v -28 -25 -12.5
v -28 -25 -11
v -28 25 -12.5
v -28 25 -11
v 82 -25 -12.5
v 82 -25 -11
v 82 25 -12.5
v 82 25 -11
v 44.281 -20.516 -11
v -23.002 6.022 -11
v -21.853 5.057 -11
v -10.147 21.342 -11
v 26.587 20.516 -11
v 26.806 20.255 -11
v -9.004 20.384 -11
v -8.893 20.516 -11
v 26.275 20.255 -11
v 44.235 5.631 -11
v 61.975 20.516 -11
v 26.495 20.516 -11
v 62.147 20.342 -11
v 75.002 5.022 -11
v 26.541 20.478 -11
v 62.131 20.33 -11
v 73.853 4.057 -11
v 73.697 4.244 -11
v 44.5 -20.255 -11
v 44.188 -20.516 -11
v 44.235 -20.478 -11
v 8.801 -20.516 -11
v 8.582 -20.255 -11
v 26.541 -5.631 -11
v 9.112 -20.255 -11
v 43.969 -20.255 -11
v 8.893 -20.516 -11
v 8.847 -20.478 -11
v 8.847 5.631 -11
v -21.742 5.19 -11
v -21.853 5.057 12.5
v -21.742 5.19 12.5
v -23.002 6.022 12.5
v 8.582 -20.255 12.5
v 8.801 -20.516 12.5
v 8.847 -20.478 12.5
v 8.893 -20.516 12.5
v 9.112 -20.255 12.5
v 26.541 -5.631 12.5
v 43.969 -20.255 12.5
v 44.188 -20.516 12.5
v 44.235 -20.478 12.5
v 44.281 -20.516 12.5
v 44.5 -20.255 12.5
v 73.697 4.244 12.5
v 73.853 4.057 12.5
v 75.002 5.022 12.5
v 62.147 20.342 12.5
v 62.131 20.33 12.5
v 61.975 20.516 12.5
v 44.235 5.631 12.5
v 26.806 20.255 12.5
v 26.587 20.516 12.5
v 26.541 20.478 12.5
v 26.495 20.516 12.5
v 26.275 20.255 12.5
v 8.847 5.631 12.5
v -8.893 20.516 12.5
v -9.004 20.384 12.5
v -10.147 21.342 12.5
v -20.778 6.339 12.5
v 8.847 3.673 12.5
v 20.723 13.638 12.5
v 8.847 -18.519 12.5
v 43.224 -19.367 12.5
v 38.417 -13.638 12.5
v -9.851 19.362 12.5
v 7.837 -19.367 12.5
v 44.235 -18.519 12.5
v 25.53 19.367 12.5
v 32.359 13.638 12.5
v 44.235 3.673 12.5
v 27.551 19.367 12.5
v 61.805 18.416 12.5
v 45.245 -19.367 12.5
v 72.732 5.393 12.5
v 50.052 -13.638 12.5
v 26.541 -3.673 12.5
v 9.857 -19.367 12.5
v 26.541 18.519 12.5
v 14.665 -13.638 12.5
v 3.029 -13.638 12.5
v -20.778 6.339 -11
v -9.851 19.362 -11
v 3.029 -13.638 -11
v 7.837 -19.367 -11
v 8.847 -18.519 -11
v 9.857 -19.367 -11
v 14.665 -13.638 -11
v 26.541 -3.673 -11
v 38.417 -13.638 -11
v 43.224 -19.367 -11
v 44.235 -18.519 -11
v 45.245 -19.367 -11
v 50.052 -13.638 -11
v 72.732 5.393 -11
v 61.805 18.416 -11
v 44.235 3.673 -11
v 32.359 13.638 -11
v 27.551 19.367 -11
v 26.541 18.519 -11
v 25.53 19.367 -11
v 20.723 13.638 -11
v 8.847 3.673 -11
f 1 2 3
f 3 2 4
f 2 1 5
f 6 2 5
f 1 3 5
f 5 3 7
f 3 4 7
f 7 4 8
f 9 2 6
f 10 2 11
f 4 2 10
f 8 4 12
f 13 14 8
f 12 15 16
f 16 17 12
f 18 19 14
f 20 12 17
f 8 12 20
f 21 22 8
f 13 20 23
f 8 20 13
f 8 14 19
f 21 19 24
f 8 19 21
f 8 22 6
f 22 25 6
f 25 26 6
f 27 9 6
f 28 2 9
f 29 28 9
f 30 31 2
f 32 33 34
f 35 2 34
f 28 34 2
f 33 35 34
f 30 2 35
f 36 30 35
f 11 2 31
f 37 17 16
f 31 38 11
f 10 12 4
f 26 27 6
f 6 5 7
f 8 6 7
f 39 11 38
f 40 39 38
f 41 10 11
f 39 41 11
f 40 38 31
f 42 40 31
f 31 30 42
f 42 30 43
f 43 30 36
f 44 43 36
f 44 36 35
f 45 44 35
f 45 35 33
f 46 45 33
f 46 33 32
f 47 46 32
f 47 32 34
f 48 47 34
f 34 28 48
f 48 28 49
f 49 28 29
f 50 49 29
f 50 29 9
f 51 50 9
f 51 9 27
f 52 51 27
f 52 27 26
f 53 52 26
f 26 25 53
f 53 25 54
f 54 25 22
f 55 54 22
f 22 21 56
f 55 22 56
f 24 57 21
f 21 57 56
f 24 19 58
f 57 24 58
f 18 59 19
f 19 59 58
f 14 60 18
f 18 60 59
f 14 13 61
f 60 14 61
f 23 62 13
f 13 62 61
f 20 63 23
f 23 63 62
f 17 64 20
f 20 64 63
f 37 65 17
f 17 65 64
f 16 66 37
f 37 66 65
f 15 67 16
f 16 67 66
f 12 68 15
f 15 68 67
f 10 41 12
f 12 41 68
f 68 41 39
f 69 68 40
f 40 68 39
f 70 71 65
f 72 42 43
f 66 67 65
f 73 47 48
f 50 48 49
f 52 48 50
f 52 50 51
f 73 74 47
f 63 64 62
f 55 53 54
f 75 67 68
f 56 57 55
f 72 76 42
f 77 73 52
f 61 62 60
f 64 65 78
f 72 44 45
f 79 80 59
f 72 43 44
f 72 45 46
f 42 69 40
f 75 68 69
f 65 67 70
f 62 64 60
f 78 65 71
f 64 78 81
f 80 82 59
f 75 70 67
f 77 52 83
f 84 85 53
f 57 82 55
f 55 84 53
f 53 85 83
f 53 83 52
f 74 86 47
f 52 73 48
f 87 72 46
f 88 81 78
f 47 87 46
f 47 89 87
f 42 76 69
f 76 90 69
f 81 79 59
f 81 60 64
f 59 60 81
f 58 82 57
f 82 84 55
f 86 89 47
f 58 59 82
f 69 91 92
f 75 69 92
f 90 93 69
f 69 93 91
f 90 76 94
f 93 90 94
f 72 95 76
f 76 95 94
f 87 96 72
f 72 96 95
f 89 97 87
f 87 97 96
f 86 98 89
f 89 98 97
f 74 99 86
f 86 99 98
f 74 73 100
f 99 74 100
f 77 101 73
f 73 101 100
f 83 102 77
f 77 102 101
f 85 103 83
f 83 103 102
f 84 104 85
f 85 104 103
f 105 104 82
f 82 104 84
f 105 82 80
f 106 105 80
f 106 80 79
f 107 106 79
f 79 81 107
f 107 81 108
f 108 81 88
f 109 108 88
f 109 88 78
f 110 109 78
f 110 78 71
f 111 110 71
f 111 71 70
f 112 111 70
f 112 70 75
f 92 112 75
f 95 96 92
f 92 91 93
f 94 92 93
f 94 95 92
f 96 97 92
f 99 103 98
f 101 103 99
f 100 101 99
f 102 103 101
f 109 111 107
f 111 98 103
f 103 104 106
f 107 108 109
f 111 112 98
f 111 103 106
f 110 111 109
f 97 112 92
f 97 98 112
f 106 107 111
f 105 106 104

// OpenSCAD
inner_width = 17;
wall_thickness = 1.5;
segment_length = 40;
segments =4;
cutter_height = 25;
angle = 140;

fudge = 0.1*1;

module chevron(width, height, length)
{
	angled_length = sin(angle/2)*length;
	adj = -1.1;
	offset = angled_length/2 + adj;

echo(offset);

	difference()
	{
		intersection()
		{
			for(i=[0:segments-1])
			{
				translate([offset * i, 0, 0])
				rotate([0,0,i%2 == 0 ? angle : -angle])
					cube([length, width, height],center=true);
			}
		}
	}
}

module cookieCutter()
{
	union()
	{
		difference()
		{
			chevron(inner_width + wall_thickness*2, cutter_height, segment_length);
			chevron(inner_width, cutter_height + fudge*2, segment_length);
		}
		
		// ends
		translate([-16,13.2,0])
		rotate([0,0,angle])
		cube([wall_thickness, inner_width+wall_thickness*2, cutter_height], center=true);

		translate([68,12.2,0])
		rotate([0,0,-angle])
		cube([wall_thickness, inner_width+wall_thickness*2, cutter_height], center=true);

		translate([-28,-25,-cutter_height/2])
		cube([110, 50, wall_thickness]);
	}
}

//chevron(inner_width, cutter_height);
cookieCutter();
